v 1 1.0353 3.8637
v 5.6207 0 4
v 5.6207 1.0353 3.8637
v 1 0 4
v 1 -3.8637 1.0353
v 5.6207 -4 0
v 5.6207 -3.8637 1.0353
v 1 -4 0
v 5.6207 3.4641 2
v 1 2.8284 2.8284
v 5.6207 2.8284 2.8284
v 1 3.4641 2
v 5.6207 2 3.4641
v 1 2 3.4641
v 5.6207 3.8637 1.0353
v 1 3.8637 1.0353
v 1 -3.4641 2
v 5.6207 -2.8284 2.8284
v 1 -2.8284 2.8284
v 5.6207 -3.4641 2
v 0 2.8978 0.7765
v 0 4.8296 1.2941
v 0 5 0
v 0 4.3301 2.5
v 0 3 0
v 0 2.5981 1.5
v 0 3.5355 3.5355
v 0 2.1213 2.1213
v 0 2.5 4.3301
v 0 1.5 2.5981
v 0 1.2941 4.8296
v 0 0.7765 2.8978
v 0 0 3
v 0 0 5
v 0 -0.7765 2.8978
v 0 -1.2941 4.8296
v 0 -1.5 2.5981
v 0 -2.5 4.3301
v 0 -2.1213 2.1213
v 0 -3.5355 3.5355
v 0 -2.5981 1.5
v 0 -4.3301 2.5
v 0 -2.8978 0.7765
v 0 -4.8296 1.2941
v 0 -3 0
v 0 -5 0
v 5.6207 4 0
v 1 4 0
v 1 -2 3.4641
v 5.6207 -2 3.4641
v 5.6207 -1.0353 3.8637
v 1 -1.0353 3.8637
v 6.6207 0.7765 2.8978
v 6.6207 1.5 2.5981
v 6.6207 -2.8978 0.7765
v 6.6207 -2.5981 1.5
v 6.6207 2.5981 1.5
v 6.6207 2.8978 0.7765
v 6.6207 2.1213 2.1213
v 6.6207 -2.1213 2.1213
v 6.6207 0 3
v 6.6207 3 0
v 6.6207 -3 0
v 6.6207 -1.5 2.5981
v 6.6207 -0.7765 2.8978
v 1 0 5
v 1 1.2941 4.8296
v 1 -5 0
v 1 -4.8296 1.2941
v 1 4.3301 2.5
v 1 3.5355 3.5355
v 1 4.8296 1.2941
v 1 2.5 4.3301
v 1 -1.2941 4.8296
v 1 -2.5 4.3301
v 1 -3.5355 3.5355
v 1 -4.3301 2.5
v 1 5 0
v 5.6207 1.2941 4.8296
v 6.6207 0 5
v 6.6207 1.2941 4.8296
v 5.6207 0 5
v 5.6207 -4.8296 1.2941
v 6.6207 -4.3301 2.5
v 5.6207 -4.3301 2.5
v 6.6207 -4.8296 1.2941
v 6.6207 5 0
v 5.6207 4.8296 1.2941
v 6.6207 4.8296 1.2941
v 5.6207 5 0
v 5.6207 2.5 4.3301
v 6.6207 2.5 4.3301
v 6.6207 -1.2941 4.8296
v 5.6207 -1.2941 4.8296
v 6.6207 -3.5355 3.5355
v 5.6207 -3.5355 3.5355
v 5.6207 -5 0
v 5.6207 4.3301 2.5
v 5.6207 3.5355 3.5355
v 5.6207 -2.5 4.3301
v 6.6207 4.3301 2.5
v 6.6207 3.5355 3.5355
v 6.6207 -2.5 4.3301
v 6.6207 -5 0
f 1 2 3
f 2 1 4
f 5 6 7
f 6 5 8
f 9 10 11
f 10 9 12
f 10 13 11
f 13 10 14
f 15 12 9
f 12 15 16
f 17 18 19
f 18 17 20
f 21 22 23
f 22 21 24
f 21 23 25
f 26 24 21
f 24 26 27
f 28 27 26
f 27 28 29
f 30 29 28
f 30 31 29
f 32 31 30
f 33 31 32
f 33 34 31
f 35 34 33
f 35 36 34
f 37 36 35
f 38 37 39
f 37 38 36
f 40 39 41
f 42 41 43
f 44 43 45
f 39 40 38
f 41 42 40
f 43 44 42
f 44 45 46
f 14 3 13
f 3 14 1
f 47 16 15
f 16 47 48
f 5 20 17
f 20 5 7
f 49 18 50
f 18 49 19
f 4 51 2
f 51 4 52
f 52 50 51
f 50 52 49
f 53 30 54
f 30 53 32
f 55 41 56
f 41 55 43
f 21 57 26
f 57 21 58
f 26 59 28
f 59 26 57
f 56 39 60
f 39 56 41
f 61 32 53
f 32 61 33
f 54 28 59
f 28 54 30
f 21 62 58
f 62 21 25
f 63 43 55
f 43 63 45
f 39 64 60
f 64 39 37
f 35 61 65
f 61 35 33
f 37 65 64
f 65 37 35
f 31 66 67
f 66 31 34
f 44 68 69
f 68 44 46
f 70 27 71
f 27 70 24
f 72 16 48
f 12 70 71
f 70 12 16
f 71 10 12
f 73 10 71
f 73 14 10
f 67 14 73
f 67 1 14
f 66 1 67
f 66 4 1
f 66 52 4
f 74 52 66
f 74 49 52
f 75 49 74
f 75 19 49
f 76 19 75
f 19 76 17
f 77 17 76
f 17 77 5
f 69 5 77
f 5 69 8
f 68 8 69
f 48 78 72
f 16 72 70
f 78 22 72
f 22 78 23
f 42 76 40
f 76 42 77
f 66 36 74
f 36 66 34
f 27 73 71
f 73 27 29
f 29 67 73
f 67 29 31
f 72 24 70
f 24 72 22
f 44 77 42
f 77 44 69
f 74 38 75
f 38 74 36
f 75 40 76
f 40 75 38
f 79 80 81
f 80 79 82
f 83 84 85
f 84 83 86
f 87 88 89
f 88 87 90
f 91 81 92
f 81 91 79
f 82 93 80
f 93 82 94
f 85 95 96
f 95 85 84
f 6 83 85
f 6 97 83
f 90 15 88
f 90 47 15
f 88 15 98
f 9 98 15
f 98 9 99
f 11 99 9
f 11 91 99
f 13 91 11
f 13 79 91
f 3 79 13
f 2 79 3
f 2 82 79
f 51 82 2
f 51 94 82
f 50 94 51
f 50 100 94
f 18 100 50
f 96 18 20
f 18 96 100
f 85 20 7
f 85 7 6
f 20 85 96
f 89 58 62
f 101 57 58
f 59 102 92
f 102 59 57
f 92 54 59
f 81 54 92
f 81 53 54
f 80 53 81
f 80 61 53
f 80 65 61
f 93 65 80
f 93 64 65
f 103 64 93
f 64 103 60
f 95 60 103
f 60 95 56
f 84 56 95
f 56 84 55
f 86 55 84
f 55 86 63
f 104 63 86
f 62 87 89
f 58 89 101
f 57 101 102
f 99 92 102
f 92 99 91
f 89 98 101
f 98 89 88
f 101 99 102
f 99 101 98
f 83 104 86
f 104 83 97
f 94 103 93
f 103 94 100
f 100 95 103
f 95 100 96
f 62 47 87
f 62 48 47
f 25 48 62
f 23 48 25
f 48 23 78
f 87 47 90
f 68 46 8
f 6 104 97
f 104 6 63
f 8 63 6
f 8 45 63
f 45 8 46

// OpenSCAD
// file: ../build_environments.scad
// build_environments.scad: modules to build level sections
//

module pool(diameter=10.0, wall_height=2.0, step_width=3.0, connections=[])
{
    difference() {
        union() {
        difference() {
            cylinder(h=0.5,r1=diameter+step_width,r2=diameter+step_width,$fn=48);
            translate([0,0,-0.1])
                cylinder(h=0.7,r1=diameter,r2=diameter,$fn=48);
        }
        difference() {
            cylinder(h=wall_height,r1=diameter+step_width+1.0,r2=diameter+step_width+1.0,$fn=48);
            translate([0,0,-0.1])
                cylinder(h=wall_height+0.2,r1=diameter+step_width,r2=diameter+step_width,$fn=48);
        }
        }
    
        for (c = connections)
        {
            rotate([0,90,0]) {
                angle = atan2(c[1],c[0]);
                rotate([-angle,0,0]) {
                    cylinder(h=diameter+5.0,r1=c[2],r2=c[2],$fn=48);
                }
            }
        }
    }
}

module straight(length=10.0, width=2.0, dy1=0.0, dy2=0.0, dz=0.0)
{
    dims = [0, 0, 0, 0, 0, (dz/length)];
    matrix = [
        [ 1, dims[0], dims[1], 0 ],
        [ dims[2], 1, dims[4], 0 ],
        [ dims[5], dims[3], 1, 0 ],
        [ 0, 0, 0, 1 ]
    ];
    multmatrix(matrix)
    difference() {
        translate([dy1,0,0])
        union() {
            rotate([0,90,0]) {
                difference() {
                    cylinder(h=(length-dy1-dy2),r1=width+1.0,r2=width+1.0,$fn=24);
                    translate([0,0,-0.1])
                        cylinder(h=(length-dy1-dy2+0.2),r1=width,r2=width,$fn=24);
                }
                difference() {
                    cylinder(h=1.0,r1=width+2.0,r2=width+2.0,$fn=24);
                    translate([0,0,-0.1])
                        cylinder(h=1.2,r1=width,r2=width,$fn=24);
                }
                translate([0,0,(length-dy1-dy2)-1.0]) {
                    difference() {
                        cylinder(h=1.0,r1=width+2.0,r2=width+2.0,$fn=24);
                        translate([0,0,-0.1])
                            cylinder(h=1.2,r1=width,r2=width,$fn=24);
                    }
                }
            }
        }
        translate([0,0,-(2*width+4.0)/2])
            cube([3*length,3*length,2*width+4.0],center=true);
    }
}

module curve(p0=[0,0], center=[0,0], dir=1, angle=0.0, width=2.0)
{
    radius = sqrt((p0[0]-center[0])*(p0[0]-center[0]) + (p0[1]-center[1])*(p0[1]-center[1]));
    if (dir == 0) {
        difference() {
            rotate([0,0,-90])
            difference() {
                rotate_extrude(angle = angle, convexity = 10, $fn=32)
                    translate([radius, 0, 0])
                        circle(r = width+1.0,$fn=24);
                rotate([0,0,-1.0])
                    rotate_extrude(angle = angle+2.0, convexity = 10, $fn=32)
                        translate([radius, 0, 0])
                            circle(r = width,$fn=24);
            }
            translate([0,0,-(2*width+4.0)/2])
                cube([5*radius,5*radius,2*width+4.0],center=true);
        }
    }
    else {
        difference() {
            rotate([0,0,90])
            difference() {
                rotate_extrude(angle = -angle, convexity = 10, $fn=32)
                    translate([radius, 0, 0])
                        circle(r = width+1.0,$fn=24);
                rotate([0,0,1.0])
                    rotate_extrude(angle = -angle-2.0, convexity = 10, $fn=32)
                        translate([radius, 0, 0])
                            circle(r = width,$fn=24);
            }
            translate([0,0,-(2*width+4.0)/2])
                cube([5*radius,5*radius,2*width+4.0],center=true);
        }
    }

}

// test pool
//pool(diameter=12.0000, wall_height=3.0000, step_width=3.0000, connections=[[0.0000,-26.0000,2.0000], [23.6074,0.0000,2.0000]]);

// test straight, slope
//straight(length=26.0000, width=2.0000, dy1=11.8322, dy2=6.7082, dz=0.0000);
//straight(length=29.1549, width=12.0000, dy1=0.0000, dy2=0.0000, dz=-15.0000);

// test curve
//curve(p0=[23.6074, 0.0000], center=[23.6074, 5.0000], dir=0, angle=60.1011, width=2.0000);
//curve(p0=[33.6426, 12.4219], center=[37.9771, 9.9295], dir=1, angle=120.4627, width=2.0000);
// main file
use <../build_environments.scad>;
straight(length=6.6207, width=3.0000, dy1=0.0000, dy2=0.0000, dz=0.0000);
